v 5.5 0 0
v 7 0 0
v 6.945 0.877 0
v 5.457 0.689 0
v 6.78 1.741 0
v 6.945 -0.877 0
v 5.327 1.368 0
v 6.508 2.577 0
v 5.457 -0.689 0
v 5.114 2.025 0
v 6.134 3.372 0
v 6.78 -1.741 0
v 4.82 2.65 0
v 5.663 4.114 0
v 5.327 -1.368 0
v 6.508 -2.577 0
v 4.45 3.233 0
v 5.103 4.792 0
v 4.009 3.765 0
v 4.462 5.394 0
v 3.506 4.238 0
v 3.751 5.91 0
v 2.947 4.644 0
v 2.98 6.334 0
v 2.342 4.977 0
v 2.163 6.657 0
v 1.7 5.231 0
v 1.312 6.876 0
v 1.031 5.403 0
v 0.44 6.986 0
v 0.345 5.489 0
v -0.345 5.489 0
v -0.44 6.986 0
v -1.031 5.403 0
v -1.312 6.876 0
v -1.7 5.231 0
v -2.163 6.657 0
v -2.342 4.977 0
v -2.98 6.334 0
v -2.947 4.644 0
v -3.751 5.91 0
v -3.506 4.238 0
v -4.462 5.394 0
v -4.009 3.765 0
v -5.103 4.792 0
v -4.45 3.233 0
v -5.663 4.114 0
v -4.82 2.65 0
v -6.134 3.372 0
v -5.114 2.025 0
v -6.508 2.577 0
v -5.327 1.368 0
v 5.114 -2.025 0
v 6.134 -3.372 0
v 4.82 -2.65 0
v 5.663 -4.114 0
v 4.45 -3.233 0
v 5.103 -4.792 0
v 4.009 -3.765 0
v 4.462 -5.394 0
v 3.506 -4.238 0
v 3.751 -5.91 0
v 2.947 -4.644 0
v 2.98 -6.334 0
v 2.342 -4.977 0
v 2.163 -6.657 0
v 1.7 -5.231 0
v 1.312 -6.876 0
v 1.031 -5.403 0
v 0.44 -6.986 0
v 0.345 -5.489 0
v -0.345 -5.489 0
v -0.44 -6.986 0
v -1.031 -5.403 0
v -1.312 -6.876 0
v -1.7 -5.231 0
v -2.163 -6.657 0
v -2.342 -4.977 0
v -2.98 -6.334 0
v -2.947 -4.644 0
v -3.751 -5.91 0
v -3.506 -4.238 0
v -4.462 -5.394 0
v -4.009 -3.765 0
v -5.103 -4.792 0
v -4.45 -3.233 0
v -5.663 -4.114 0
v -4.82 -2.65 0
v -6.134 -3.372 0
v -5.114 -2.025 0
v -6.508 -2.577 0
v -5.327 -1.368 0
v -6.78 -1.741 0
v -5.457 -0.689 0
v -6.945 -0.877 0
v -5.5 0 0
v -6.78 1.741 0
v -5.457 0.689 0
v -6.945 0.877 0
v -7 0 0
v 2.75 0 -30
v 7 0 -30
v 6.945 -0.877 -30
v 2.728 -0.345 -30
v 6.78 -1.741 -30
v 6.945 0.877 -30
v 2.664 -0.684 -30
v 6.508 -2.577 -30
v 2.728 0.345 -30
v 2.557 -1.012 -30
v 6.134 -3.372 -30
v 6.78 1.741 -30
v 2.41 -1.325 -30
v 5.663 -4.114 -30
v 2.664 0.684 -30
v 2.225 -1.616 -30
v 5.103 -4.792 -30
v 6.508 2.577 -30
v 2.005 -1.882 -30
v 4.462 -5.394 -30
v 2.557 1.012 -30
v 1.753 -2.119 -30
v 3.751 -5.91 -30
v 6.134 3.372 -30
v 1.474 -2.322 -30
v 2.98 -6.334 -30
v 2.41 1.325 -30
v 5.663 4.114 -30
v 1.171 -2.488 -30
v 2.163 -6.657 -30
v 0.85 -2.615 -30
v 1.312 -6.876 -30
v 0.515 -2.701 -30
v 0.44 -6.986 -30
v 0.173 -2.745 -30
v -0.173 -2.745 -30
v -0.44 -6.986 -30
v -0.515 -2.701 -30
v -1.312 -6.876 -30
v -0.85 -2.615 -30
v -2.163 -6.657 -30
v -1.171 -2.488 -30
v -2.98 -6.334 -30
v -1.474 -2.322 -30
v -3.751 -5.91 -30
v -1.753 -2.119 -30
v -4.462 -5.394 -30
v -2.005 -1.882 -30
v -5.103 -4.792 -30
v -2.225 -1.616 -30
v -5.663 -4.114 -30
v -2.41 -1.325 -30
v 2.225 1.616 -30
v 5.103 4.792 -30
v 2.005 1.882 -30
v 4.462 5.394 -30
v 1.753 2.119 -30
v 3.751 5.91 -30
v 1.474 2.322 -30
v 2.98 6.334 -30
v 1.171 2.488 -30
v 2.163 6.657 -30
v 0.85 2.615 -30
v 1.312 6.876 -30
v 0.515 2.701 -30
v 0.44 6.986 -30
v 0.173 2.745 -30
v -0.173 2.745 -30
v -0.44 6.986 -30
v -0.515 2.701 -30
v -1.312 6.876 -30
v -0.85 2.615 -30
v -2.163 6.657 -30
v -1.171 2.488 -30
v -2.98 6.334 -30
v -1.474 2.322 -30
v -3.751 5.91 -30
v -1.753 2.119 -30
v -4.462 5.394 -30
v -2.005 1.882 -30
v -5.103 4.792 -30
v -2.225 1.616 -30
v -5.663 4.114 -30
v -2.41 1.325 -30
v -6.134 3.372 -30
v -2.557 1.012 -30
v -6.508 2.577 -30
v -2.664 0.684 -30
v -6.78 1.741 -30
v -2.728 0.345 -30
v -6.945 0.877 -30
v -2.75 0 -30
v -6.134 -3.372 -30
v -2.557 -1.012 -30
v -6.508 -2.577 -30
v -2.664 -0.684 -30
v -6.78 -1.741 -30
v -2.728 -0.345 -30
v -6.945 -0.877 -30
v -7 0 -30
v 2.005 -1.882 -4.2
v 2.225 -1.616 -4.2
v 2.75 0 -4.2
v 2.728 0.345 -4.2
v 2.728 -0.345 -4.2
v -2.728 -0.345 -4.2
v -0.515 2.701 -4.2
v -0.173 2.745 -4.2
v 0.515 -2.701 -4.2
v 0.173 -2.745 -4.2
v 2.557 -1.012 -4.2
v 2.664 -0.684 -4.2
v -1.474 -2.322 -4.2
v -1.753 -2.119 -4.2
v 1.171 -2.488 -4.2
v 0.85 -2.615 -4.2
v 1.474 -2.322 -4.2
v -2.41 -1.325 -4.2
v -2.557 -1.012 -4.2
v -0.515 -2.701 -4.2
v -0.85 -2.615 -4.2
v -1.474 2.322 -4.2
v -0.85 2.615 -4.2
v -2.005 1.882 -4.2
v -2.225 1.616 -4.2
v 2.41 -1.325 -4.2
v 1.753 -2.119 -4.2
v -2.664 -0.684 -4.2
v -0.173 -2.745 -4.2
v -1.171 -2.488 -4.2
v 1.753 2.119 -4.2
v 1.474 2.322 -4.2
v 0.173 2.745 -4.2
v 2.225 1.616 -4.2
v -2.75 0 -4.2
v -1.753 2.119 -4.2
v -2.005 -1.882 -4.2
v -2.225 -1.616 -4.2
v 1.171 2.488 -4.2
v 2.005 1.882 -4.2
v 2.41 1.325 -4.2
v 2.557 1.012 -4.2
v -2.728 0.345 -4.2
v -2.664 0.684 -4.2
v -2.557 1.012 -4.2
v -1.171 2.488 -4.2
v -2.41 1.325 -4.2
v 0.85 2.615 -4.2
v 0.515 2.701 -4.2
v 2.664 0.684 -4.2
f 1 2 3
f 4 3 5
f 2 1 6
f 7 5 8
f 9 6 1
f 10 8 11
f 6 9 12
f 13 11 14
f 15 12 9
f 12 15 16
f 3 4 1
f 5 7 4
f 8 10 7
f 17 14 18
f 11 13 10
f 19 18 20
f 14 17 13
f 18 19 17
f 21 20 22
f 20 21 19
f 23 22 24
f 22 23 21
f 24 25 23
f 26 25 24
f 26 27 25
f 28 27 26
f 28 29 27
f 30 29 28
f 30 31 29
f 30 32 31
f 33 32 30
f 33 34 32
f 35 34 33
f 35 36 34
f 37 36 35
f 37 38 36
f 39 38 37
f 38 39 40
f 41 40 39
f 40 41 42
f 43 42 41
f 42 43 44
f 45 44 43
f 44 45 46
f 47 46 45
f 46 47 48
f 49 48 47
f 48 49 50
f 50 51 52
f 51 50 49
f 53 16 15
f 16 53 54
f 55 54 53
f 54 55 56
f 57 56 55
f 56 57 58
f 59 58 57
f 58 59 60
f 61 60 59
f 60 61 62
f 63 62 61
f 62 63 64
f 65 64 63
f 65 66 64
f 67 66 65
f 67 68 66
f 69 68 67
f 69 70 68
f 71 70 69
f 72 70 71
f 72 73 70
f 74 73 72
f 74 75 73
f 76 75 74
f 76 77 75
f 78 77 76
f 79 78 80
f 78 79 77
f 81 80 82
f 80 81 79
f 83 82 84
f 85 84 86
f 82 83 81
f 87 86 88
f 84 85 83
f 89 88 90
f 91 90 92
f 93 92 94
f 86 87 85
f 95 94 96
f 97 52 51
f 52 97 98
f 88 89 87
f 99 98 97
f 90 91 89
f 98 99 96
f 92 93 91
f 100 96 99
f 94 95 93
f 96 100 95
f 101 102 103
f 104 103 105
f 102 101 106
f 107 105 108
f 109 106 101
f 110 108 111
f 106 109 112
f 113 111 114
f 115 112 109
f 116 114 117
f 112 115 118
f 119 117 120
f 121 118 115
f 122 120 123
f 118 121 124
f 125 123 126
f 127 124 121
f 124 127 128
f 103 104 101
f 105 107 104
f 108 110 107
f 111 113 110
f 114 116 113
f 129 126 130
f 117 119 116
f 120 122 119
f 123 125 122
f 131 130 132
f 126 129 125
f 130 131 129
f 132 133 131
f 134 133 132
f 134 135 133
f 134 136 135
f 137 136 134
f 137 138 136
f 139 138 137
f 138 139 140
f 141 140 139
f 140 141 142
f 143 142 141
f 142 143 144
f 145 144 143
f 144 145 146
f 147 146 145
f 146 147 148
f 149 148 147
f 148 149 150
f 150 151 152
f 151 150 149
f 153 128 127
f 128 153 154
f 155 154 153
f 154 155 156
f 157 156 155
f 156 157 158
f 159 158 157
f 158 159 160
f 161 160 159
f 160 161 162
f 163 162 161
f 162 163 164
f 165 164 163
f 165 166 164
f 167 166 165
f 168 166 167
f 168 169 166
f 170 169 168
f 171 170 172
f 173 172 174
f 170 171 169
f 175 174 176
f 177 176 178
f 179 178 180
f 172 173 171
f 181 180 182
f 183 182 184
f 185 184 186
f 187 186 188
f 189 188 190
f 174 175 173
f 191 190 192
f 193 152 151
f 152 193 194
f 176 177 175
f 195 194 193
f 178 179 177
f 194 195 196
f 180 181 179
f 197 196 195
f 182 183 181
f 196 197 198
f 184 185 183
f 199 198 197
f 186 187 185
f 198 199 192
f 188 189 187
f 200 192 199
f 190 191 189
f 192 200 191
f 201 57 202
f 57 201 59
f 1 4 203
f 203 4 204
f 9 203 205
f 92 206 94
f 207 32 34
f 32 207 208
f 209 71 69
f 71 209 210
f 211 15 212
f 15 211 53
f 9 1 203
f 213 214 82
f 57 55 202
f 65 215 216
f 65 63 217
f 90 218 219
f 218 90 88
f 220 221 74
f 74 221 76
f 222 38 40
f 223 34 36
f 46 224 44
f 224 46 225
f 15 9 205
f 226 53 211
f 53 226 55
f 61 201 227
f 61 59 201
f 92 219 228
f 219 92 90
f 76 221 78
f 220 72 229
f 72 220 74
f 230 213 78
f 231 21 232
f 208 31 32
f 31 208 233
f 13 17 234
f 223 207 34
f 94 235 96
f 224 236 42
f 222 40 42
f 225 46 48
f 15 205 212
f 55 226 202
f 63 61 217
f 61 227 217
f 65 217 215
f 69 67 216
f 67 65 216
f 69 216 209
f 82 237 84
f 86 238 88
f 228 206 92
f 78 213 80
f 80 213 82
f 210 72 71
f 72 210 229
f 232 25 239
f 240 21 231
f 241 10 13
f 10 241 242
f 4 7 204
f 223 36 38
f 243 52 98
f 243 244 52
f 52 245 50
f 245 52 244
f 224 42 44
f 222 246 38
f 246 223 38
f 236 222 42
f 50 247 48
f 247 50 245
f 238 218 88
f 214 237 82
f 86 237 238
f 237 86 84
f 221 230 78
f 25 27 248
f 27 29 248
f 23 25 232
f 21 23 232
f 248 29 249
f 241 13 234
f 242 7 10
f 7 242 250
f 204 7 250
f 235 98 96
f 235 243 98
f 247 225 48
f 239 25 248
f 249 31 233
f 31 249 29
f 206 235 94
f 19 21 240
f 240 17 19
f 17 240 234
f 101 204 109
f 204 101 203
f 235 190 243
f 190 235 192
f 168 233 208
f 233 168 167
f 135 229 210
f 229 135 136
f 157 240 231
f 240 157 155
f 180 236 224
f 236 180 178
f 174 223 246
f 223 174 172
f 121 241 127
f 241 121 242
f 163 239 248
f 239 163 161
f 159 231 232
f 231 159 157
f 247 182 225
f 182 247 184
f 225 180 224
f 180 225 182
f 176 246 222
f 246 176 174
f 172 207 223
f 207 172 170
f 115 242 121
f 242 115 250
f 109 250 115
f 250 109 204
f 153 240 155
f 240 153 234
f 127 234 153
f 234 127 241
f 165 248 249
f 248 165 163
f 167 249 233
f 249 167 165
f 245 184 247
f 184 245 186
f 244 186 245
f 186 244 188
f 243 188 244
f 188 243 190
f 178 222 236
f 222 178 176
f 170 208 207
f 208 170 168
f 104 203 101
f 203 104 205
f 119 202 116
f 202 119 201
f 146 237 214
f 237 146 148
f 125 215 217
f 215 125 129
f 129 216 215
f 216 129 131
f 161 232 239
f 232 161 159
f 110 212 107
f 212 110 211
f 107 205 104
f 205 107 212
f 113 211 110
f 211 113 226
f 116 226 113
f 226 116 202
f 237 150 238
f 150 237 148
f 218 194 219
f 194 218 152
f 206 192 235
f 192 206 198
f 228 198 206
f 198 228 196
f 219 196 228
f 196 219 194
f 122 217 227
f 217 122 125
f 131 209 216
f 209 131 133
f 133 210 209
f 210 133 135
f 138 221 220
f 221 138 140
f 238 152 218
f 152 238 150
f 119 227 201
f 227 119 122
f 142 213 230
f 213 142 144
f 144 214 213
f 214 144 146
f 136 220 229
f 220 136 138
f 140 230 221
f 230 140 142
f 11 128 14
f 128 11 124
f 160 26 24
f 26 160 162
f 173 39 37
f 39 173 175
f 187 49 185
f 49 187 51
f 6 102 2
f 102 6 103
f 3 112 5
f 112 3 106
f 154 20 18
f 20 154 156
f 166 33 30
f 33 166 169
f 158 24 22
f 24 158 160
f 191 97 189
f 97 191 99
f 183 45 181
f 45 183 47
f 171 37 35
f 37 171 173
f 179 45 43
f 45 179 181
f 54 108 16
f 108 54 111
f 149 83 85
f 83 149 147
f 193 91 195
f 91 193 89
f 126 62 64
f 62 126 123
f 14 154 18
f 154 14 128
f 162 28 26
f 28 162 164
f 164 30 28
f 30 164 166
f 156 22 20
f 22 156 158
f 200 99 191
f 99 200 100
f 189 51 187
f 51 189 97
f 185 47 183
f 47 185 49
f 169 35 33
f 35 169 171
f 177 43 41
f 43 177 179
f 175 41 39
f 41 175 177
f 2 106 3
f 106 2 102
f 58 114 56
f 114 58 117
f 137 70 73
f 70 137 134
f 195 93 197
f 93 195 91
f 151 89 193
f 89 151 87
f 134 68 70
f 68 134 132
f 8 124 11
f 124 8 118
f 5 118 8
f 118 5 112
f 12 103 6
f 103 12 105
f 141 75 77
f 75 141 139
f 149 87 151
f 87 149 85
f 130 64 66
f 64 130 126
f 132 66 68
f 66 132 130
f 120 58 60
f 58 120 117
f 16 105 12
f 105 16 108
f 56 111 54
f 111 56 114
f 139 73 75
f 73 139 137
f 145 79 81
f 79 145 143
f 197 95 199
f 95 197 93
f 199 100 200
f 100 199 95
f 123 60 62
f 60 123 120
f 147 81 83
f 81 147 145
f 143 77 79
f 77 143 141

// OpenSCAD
$fn = 50;


difference() {
	union() {
		translate(v = [0, 0, -30.0000000000]) {
			cylinder(h = 30, r = 7.0000000000);
		}
	}
	union() {
		translate(v = [0, 0, 0]) {
			rotate(a = [0, 0, 0]) {
				difference() {
					union() {
						#translate(v = [0, 0, -30.0000000000]) {
							cylinder(h = 30, r = 2.2500000000);
						}
						#translate(v = [0, 0, -4.2000000000]) {
							cylinder(h = 4.2000000000, r1 = 2.7500000000, r2 = 5.5000000000);
						}
						#translate(v = [0, 0, -30.0000000000]) {
							cylinder(h = 30, r = 2.7500000000);
						}
						#translate(v = [0, 0, -30.0000000000]) {
							cylinder(h = 30, r = 2.2500000000);
						}
					}
					union();
				}
			}
		}
	}
}
